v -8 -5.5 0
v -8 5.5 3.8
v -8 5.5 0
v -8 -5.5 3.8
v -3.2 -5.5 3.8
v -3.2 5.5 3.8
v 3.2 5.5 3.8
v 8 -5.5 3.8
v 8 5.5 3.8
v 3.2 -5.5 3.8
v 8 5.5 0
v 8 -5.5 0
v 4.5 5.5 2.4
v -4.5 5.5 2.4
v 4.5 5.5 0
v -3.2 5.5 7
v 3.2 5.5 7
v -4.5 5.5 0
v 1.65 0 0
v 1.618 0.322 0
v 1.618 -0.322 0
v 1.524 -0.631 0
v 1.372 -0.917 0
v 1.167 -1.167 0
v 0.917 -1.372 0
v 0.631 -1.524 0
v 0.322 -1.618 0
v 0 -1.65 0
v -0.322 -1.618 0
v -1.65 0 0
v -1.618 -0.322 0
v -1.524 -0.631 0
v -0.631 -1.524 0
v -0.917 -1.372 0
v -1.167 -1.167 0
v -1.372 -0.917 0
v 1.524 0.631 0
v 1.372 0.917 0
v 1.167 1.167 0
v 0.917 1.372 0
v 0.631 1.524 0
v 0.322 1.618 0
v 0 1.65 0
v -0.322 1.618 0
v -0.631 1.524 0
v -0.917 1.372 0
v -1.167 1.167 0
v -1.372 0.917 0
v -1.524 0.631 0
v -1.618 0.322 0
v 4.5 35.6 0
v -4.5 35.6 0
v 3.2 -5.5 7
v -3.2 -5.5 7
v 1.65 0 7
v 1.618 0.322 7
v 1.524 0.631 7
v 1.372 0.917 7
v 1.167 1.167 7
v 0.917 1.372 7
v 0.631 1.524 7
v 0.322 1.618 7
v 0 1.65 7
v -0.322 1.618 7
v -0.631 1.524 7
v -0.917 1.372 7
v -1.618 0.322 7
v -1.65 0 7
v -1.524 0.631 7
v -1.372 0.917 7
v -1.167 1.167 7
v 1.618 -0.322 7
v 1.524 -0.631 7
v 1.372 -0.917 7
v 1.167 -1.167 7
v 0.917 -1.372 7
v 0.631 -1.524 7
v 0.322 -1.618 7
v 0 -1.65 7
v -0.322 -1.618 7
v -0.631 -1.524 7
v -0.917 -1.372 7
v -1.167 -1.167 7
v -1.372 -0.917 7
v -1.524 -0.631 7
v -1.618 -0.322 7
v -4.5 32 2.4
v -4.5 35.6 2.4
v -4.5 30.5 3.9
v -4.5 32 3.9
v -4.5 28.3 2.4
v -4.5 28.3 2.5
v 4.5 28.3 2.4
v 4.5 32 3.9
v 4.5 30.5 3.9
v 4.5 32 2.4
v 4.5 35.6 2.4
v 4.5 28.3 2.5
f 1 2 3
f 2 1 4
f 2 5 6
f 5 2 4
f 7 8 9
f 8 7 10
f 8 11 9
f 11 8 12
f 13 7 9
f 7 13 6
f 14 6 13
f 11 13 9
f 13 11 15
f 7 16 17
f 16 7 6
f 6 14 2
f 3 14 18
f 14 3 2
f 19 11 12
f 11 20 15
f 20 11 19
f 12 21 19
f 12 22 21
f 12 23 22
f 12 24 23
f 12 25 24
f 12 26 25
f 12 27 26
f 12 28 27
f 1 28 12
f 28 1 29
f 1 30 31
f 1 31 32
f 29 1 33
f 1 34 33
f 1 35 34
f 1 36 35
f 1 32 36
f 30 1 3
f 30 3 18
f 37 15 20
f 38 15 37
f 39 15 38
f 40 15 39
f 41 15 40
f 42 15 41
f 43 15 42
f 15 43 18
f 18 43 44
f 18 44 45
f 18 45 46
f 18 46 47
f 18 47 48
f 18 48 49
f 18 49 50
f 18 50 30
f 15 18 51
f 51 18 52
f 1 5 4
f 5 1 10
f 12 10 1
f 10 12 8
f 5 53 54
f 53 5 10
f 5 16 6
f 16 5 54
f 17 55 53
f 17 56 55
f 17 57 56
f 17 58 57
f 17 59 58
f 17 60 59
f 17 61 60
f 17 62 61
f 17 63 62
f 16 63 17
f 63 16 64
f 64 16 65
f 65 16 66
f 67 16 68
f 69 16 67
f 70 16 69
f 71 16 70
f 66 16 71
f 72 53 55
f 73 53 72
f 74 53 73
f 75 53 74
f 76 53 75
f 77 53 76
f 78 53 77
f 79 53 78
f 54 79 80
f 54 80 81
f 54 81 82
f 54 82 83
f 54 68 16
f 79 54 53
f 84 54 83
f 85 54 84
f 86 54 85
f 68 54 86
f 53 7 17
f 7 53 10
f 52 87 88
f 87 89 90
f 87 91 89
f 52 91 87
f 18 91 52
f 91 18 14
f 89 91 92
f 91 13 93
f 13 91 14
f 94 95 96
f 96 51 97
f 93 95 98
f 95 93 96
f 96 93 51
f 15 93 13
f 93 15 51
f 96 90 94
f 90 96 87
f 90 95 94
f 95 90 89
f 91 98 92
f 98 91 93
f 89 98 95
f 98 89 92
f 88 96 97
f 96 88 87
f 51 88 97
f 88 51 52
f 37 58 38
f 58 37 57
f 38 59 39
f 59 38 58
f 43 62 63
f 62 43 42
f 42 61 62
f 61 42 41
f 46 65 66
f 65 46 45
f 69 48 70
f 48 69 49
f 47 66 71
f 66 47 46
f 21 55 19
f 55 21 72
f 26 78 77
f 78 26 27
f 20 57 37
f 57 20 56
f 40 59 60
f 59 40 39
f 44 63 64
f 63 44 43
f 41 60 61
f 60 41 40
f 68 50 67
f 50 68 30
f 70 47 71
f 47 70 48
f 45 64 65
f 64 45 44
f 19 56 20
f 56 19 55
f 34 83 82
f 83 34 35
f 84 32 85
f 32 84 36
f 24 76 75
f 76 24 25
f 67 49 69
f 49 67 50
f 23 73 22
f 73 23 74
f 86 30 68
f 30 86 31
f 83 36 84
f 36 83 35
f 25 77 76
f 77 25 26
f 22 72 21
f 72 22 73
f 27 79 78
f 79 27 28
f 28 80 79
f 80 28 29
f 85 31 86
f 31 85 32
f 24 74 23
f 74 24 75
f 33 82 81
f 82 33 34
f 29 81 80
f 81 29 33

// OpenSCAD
$fn = 32;
module k2_snap_clip_modular() {
    difference() {
        union() {
            // Chân đế trượt chữ T cài vừa khít vào rãnh hạt đậu của tấm plate
            translate([-8.0, -5.5, 0.0]) cube([16.0, 11.0, 3.8]);
            translate([-3.2, -5.5, 3.8]) cube([6.4, 11.0, 3.2]);
            // Đòn đàn hồi đứng (in nằm phẳng tại Z=0)
            translate([-4.5, 5.5, 0.0]) cube([9.0, 26.5, 2.4]);
            // Đầu móc ngàm khóa có vát 45 độ
            translate([-4.5, 30.5, 2.4])
                hull() {
                    cube([9.0, 1.5, 1.5]);
                    translate([0, -2.2, 0]) cube([9.0, 0.1, 0.1]);
                }
            // Tai bấm ngón tay mở nhanh (Thumb tab)
            translate([-4.5, 30.5, 0.0])
                hull() {
                    cube([9.0, 3.2, 2.4]);
                    translate([0, 5.0, 0]) cube([9.0, 0.1, 2.4]);
                }
        }
        // Lỗ ốc M3 tâm để siết khóa cứng nếu muốn
        translate([0, 0, -1.0]) cylinder(d=3.3, h=10.0);
    }
}
k2_snap_clip_modular();
